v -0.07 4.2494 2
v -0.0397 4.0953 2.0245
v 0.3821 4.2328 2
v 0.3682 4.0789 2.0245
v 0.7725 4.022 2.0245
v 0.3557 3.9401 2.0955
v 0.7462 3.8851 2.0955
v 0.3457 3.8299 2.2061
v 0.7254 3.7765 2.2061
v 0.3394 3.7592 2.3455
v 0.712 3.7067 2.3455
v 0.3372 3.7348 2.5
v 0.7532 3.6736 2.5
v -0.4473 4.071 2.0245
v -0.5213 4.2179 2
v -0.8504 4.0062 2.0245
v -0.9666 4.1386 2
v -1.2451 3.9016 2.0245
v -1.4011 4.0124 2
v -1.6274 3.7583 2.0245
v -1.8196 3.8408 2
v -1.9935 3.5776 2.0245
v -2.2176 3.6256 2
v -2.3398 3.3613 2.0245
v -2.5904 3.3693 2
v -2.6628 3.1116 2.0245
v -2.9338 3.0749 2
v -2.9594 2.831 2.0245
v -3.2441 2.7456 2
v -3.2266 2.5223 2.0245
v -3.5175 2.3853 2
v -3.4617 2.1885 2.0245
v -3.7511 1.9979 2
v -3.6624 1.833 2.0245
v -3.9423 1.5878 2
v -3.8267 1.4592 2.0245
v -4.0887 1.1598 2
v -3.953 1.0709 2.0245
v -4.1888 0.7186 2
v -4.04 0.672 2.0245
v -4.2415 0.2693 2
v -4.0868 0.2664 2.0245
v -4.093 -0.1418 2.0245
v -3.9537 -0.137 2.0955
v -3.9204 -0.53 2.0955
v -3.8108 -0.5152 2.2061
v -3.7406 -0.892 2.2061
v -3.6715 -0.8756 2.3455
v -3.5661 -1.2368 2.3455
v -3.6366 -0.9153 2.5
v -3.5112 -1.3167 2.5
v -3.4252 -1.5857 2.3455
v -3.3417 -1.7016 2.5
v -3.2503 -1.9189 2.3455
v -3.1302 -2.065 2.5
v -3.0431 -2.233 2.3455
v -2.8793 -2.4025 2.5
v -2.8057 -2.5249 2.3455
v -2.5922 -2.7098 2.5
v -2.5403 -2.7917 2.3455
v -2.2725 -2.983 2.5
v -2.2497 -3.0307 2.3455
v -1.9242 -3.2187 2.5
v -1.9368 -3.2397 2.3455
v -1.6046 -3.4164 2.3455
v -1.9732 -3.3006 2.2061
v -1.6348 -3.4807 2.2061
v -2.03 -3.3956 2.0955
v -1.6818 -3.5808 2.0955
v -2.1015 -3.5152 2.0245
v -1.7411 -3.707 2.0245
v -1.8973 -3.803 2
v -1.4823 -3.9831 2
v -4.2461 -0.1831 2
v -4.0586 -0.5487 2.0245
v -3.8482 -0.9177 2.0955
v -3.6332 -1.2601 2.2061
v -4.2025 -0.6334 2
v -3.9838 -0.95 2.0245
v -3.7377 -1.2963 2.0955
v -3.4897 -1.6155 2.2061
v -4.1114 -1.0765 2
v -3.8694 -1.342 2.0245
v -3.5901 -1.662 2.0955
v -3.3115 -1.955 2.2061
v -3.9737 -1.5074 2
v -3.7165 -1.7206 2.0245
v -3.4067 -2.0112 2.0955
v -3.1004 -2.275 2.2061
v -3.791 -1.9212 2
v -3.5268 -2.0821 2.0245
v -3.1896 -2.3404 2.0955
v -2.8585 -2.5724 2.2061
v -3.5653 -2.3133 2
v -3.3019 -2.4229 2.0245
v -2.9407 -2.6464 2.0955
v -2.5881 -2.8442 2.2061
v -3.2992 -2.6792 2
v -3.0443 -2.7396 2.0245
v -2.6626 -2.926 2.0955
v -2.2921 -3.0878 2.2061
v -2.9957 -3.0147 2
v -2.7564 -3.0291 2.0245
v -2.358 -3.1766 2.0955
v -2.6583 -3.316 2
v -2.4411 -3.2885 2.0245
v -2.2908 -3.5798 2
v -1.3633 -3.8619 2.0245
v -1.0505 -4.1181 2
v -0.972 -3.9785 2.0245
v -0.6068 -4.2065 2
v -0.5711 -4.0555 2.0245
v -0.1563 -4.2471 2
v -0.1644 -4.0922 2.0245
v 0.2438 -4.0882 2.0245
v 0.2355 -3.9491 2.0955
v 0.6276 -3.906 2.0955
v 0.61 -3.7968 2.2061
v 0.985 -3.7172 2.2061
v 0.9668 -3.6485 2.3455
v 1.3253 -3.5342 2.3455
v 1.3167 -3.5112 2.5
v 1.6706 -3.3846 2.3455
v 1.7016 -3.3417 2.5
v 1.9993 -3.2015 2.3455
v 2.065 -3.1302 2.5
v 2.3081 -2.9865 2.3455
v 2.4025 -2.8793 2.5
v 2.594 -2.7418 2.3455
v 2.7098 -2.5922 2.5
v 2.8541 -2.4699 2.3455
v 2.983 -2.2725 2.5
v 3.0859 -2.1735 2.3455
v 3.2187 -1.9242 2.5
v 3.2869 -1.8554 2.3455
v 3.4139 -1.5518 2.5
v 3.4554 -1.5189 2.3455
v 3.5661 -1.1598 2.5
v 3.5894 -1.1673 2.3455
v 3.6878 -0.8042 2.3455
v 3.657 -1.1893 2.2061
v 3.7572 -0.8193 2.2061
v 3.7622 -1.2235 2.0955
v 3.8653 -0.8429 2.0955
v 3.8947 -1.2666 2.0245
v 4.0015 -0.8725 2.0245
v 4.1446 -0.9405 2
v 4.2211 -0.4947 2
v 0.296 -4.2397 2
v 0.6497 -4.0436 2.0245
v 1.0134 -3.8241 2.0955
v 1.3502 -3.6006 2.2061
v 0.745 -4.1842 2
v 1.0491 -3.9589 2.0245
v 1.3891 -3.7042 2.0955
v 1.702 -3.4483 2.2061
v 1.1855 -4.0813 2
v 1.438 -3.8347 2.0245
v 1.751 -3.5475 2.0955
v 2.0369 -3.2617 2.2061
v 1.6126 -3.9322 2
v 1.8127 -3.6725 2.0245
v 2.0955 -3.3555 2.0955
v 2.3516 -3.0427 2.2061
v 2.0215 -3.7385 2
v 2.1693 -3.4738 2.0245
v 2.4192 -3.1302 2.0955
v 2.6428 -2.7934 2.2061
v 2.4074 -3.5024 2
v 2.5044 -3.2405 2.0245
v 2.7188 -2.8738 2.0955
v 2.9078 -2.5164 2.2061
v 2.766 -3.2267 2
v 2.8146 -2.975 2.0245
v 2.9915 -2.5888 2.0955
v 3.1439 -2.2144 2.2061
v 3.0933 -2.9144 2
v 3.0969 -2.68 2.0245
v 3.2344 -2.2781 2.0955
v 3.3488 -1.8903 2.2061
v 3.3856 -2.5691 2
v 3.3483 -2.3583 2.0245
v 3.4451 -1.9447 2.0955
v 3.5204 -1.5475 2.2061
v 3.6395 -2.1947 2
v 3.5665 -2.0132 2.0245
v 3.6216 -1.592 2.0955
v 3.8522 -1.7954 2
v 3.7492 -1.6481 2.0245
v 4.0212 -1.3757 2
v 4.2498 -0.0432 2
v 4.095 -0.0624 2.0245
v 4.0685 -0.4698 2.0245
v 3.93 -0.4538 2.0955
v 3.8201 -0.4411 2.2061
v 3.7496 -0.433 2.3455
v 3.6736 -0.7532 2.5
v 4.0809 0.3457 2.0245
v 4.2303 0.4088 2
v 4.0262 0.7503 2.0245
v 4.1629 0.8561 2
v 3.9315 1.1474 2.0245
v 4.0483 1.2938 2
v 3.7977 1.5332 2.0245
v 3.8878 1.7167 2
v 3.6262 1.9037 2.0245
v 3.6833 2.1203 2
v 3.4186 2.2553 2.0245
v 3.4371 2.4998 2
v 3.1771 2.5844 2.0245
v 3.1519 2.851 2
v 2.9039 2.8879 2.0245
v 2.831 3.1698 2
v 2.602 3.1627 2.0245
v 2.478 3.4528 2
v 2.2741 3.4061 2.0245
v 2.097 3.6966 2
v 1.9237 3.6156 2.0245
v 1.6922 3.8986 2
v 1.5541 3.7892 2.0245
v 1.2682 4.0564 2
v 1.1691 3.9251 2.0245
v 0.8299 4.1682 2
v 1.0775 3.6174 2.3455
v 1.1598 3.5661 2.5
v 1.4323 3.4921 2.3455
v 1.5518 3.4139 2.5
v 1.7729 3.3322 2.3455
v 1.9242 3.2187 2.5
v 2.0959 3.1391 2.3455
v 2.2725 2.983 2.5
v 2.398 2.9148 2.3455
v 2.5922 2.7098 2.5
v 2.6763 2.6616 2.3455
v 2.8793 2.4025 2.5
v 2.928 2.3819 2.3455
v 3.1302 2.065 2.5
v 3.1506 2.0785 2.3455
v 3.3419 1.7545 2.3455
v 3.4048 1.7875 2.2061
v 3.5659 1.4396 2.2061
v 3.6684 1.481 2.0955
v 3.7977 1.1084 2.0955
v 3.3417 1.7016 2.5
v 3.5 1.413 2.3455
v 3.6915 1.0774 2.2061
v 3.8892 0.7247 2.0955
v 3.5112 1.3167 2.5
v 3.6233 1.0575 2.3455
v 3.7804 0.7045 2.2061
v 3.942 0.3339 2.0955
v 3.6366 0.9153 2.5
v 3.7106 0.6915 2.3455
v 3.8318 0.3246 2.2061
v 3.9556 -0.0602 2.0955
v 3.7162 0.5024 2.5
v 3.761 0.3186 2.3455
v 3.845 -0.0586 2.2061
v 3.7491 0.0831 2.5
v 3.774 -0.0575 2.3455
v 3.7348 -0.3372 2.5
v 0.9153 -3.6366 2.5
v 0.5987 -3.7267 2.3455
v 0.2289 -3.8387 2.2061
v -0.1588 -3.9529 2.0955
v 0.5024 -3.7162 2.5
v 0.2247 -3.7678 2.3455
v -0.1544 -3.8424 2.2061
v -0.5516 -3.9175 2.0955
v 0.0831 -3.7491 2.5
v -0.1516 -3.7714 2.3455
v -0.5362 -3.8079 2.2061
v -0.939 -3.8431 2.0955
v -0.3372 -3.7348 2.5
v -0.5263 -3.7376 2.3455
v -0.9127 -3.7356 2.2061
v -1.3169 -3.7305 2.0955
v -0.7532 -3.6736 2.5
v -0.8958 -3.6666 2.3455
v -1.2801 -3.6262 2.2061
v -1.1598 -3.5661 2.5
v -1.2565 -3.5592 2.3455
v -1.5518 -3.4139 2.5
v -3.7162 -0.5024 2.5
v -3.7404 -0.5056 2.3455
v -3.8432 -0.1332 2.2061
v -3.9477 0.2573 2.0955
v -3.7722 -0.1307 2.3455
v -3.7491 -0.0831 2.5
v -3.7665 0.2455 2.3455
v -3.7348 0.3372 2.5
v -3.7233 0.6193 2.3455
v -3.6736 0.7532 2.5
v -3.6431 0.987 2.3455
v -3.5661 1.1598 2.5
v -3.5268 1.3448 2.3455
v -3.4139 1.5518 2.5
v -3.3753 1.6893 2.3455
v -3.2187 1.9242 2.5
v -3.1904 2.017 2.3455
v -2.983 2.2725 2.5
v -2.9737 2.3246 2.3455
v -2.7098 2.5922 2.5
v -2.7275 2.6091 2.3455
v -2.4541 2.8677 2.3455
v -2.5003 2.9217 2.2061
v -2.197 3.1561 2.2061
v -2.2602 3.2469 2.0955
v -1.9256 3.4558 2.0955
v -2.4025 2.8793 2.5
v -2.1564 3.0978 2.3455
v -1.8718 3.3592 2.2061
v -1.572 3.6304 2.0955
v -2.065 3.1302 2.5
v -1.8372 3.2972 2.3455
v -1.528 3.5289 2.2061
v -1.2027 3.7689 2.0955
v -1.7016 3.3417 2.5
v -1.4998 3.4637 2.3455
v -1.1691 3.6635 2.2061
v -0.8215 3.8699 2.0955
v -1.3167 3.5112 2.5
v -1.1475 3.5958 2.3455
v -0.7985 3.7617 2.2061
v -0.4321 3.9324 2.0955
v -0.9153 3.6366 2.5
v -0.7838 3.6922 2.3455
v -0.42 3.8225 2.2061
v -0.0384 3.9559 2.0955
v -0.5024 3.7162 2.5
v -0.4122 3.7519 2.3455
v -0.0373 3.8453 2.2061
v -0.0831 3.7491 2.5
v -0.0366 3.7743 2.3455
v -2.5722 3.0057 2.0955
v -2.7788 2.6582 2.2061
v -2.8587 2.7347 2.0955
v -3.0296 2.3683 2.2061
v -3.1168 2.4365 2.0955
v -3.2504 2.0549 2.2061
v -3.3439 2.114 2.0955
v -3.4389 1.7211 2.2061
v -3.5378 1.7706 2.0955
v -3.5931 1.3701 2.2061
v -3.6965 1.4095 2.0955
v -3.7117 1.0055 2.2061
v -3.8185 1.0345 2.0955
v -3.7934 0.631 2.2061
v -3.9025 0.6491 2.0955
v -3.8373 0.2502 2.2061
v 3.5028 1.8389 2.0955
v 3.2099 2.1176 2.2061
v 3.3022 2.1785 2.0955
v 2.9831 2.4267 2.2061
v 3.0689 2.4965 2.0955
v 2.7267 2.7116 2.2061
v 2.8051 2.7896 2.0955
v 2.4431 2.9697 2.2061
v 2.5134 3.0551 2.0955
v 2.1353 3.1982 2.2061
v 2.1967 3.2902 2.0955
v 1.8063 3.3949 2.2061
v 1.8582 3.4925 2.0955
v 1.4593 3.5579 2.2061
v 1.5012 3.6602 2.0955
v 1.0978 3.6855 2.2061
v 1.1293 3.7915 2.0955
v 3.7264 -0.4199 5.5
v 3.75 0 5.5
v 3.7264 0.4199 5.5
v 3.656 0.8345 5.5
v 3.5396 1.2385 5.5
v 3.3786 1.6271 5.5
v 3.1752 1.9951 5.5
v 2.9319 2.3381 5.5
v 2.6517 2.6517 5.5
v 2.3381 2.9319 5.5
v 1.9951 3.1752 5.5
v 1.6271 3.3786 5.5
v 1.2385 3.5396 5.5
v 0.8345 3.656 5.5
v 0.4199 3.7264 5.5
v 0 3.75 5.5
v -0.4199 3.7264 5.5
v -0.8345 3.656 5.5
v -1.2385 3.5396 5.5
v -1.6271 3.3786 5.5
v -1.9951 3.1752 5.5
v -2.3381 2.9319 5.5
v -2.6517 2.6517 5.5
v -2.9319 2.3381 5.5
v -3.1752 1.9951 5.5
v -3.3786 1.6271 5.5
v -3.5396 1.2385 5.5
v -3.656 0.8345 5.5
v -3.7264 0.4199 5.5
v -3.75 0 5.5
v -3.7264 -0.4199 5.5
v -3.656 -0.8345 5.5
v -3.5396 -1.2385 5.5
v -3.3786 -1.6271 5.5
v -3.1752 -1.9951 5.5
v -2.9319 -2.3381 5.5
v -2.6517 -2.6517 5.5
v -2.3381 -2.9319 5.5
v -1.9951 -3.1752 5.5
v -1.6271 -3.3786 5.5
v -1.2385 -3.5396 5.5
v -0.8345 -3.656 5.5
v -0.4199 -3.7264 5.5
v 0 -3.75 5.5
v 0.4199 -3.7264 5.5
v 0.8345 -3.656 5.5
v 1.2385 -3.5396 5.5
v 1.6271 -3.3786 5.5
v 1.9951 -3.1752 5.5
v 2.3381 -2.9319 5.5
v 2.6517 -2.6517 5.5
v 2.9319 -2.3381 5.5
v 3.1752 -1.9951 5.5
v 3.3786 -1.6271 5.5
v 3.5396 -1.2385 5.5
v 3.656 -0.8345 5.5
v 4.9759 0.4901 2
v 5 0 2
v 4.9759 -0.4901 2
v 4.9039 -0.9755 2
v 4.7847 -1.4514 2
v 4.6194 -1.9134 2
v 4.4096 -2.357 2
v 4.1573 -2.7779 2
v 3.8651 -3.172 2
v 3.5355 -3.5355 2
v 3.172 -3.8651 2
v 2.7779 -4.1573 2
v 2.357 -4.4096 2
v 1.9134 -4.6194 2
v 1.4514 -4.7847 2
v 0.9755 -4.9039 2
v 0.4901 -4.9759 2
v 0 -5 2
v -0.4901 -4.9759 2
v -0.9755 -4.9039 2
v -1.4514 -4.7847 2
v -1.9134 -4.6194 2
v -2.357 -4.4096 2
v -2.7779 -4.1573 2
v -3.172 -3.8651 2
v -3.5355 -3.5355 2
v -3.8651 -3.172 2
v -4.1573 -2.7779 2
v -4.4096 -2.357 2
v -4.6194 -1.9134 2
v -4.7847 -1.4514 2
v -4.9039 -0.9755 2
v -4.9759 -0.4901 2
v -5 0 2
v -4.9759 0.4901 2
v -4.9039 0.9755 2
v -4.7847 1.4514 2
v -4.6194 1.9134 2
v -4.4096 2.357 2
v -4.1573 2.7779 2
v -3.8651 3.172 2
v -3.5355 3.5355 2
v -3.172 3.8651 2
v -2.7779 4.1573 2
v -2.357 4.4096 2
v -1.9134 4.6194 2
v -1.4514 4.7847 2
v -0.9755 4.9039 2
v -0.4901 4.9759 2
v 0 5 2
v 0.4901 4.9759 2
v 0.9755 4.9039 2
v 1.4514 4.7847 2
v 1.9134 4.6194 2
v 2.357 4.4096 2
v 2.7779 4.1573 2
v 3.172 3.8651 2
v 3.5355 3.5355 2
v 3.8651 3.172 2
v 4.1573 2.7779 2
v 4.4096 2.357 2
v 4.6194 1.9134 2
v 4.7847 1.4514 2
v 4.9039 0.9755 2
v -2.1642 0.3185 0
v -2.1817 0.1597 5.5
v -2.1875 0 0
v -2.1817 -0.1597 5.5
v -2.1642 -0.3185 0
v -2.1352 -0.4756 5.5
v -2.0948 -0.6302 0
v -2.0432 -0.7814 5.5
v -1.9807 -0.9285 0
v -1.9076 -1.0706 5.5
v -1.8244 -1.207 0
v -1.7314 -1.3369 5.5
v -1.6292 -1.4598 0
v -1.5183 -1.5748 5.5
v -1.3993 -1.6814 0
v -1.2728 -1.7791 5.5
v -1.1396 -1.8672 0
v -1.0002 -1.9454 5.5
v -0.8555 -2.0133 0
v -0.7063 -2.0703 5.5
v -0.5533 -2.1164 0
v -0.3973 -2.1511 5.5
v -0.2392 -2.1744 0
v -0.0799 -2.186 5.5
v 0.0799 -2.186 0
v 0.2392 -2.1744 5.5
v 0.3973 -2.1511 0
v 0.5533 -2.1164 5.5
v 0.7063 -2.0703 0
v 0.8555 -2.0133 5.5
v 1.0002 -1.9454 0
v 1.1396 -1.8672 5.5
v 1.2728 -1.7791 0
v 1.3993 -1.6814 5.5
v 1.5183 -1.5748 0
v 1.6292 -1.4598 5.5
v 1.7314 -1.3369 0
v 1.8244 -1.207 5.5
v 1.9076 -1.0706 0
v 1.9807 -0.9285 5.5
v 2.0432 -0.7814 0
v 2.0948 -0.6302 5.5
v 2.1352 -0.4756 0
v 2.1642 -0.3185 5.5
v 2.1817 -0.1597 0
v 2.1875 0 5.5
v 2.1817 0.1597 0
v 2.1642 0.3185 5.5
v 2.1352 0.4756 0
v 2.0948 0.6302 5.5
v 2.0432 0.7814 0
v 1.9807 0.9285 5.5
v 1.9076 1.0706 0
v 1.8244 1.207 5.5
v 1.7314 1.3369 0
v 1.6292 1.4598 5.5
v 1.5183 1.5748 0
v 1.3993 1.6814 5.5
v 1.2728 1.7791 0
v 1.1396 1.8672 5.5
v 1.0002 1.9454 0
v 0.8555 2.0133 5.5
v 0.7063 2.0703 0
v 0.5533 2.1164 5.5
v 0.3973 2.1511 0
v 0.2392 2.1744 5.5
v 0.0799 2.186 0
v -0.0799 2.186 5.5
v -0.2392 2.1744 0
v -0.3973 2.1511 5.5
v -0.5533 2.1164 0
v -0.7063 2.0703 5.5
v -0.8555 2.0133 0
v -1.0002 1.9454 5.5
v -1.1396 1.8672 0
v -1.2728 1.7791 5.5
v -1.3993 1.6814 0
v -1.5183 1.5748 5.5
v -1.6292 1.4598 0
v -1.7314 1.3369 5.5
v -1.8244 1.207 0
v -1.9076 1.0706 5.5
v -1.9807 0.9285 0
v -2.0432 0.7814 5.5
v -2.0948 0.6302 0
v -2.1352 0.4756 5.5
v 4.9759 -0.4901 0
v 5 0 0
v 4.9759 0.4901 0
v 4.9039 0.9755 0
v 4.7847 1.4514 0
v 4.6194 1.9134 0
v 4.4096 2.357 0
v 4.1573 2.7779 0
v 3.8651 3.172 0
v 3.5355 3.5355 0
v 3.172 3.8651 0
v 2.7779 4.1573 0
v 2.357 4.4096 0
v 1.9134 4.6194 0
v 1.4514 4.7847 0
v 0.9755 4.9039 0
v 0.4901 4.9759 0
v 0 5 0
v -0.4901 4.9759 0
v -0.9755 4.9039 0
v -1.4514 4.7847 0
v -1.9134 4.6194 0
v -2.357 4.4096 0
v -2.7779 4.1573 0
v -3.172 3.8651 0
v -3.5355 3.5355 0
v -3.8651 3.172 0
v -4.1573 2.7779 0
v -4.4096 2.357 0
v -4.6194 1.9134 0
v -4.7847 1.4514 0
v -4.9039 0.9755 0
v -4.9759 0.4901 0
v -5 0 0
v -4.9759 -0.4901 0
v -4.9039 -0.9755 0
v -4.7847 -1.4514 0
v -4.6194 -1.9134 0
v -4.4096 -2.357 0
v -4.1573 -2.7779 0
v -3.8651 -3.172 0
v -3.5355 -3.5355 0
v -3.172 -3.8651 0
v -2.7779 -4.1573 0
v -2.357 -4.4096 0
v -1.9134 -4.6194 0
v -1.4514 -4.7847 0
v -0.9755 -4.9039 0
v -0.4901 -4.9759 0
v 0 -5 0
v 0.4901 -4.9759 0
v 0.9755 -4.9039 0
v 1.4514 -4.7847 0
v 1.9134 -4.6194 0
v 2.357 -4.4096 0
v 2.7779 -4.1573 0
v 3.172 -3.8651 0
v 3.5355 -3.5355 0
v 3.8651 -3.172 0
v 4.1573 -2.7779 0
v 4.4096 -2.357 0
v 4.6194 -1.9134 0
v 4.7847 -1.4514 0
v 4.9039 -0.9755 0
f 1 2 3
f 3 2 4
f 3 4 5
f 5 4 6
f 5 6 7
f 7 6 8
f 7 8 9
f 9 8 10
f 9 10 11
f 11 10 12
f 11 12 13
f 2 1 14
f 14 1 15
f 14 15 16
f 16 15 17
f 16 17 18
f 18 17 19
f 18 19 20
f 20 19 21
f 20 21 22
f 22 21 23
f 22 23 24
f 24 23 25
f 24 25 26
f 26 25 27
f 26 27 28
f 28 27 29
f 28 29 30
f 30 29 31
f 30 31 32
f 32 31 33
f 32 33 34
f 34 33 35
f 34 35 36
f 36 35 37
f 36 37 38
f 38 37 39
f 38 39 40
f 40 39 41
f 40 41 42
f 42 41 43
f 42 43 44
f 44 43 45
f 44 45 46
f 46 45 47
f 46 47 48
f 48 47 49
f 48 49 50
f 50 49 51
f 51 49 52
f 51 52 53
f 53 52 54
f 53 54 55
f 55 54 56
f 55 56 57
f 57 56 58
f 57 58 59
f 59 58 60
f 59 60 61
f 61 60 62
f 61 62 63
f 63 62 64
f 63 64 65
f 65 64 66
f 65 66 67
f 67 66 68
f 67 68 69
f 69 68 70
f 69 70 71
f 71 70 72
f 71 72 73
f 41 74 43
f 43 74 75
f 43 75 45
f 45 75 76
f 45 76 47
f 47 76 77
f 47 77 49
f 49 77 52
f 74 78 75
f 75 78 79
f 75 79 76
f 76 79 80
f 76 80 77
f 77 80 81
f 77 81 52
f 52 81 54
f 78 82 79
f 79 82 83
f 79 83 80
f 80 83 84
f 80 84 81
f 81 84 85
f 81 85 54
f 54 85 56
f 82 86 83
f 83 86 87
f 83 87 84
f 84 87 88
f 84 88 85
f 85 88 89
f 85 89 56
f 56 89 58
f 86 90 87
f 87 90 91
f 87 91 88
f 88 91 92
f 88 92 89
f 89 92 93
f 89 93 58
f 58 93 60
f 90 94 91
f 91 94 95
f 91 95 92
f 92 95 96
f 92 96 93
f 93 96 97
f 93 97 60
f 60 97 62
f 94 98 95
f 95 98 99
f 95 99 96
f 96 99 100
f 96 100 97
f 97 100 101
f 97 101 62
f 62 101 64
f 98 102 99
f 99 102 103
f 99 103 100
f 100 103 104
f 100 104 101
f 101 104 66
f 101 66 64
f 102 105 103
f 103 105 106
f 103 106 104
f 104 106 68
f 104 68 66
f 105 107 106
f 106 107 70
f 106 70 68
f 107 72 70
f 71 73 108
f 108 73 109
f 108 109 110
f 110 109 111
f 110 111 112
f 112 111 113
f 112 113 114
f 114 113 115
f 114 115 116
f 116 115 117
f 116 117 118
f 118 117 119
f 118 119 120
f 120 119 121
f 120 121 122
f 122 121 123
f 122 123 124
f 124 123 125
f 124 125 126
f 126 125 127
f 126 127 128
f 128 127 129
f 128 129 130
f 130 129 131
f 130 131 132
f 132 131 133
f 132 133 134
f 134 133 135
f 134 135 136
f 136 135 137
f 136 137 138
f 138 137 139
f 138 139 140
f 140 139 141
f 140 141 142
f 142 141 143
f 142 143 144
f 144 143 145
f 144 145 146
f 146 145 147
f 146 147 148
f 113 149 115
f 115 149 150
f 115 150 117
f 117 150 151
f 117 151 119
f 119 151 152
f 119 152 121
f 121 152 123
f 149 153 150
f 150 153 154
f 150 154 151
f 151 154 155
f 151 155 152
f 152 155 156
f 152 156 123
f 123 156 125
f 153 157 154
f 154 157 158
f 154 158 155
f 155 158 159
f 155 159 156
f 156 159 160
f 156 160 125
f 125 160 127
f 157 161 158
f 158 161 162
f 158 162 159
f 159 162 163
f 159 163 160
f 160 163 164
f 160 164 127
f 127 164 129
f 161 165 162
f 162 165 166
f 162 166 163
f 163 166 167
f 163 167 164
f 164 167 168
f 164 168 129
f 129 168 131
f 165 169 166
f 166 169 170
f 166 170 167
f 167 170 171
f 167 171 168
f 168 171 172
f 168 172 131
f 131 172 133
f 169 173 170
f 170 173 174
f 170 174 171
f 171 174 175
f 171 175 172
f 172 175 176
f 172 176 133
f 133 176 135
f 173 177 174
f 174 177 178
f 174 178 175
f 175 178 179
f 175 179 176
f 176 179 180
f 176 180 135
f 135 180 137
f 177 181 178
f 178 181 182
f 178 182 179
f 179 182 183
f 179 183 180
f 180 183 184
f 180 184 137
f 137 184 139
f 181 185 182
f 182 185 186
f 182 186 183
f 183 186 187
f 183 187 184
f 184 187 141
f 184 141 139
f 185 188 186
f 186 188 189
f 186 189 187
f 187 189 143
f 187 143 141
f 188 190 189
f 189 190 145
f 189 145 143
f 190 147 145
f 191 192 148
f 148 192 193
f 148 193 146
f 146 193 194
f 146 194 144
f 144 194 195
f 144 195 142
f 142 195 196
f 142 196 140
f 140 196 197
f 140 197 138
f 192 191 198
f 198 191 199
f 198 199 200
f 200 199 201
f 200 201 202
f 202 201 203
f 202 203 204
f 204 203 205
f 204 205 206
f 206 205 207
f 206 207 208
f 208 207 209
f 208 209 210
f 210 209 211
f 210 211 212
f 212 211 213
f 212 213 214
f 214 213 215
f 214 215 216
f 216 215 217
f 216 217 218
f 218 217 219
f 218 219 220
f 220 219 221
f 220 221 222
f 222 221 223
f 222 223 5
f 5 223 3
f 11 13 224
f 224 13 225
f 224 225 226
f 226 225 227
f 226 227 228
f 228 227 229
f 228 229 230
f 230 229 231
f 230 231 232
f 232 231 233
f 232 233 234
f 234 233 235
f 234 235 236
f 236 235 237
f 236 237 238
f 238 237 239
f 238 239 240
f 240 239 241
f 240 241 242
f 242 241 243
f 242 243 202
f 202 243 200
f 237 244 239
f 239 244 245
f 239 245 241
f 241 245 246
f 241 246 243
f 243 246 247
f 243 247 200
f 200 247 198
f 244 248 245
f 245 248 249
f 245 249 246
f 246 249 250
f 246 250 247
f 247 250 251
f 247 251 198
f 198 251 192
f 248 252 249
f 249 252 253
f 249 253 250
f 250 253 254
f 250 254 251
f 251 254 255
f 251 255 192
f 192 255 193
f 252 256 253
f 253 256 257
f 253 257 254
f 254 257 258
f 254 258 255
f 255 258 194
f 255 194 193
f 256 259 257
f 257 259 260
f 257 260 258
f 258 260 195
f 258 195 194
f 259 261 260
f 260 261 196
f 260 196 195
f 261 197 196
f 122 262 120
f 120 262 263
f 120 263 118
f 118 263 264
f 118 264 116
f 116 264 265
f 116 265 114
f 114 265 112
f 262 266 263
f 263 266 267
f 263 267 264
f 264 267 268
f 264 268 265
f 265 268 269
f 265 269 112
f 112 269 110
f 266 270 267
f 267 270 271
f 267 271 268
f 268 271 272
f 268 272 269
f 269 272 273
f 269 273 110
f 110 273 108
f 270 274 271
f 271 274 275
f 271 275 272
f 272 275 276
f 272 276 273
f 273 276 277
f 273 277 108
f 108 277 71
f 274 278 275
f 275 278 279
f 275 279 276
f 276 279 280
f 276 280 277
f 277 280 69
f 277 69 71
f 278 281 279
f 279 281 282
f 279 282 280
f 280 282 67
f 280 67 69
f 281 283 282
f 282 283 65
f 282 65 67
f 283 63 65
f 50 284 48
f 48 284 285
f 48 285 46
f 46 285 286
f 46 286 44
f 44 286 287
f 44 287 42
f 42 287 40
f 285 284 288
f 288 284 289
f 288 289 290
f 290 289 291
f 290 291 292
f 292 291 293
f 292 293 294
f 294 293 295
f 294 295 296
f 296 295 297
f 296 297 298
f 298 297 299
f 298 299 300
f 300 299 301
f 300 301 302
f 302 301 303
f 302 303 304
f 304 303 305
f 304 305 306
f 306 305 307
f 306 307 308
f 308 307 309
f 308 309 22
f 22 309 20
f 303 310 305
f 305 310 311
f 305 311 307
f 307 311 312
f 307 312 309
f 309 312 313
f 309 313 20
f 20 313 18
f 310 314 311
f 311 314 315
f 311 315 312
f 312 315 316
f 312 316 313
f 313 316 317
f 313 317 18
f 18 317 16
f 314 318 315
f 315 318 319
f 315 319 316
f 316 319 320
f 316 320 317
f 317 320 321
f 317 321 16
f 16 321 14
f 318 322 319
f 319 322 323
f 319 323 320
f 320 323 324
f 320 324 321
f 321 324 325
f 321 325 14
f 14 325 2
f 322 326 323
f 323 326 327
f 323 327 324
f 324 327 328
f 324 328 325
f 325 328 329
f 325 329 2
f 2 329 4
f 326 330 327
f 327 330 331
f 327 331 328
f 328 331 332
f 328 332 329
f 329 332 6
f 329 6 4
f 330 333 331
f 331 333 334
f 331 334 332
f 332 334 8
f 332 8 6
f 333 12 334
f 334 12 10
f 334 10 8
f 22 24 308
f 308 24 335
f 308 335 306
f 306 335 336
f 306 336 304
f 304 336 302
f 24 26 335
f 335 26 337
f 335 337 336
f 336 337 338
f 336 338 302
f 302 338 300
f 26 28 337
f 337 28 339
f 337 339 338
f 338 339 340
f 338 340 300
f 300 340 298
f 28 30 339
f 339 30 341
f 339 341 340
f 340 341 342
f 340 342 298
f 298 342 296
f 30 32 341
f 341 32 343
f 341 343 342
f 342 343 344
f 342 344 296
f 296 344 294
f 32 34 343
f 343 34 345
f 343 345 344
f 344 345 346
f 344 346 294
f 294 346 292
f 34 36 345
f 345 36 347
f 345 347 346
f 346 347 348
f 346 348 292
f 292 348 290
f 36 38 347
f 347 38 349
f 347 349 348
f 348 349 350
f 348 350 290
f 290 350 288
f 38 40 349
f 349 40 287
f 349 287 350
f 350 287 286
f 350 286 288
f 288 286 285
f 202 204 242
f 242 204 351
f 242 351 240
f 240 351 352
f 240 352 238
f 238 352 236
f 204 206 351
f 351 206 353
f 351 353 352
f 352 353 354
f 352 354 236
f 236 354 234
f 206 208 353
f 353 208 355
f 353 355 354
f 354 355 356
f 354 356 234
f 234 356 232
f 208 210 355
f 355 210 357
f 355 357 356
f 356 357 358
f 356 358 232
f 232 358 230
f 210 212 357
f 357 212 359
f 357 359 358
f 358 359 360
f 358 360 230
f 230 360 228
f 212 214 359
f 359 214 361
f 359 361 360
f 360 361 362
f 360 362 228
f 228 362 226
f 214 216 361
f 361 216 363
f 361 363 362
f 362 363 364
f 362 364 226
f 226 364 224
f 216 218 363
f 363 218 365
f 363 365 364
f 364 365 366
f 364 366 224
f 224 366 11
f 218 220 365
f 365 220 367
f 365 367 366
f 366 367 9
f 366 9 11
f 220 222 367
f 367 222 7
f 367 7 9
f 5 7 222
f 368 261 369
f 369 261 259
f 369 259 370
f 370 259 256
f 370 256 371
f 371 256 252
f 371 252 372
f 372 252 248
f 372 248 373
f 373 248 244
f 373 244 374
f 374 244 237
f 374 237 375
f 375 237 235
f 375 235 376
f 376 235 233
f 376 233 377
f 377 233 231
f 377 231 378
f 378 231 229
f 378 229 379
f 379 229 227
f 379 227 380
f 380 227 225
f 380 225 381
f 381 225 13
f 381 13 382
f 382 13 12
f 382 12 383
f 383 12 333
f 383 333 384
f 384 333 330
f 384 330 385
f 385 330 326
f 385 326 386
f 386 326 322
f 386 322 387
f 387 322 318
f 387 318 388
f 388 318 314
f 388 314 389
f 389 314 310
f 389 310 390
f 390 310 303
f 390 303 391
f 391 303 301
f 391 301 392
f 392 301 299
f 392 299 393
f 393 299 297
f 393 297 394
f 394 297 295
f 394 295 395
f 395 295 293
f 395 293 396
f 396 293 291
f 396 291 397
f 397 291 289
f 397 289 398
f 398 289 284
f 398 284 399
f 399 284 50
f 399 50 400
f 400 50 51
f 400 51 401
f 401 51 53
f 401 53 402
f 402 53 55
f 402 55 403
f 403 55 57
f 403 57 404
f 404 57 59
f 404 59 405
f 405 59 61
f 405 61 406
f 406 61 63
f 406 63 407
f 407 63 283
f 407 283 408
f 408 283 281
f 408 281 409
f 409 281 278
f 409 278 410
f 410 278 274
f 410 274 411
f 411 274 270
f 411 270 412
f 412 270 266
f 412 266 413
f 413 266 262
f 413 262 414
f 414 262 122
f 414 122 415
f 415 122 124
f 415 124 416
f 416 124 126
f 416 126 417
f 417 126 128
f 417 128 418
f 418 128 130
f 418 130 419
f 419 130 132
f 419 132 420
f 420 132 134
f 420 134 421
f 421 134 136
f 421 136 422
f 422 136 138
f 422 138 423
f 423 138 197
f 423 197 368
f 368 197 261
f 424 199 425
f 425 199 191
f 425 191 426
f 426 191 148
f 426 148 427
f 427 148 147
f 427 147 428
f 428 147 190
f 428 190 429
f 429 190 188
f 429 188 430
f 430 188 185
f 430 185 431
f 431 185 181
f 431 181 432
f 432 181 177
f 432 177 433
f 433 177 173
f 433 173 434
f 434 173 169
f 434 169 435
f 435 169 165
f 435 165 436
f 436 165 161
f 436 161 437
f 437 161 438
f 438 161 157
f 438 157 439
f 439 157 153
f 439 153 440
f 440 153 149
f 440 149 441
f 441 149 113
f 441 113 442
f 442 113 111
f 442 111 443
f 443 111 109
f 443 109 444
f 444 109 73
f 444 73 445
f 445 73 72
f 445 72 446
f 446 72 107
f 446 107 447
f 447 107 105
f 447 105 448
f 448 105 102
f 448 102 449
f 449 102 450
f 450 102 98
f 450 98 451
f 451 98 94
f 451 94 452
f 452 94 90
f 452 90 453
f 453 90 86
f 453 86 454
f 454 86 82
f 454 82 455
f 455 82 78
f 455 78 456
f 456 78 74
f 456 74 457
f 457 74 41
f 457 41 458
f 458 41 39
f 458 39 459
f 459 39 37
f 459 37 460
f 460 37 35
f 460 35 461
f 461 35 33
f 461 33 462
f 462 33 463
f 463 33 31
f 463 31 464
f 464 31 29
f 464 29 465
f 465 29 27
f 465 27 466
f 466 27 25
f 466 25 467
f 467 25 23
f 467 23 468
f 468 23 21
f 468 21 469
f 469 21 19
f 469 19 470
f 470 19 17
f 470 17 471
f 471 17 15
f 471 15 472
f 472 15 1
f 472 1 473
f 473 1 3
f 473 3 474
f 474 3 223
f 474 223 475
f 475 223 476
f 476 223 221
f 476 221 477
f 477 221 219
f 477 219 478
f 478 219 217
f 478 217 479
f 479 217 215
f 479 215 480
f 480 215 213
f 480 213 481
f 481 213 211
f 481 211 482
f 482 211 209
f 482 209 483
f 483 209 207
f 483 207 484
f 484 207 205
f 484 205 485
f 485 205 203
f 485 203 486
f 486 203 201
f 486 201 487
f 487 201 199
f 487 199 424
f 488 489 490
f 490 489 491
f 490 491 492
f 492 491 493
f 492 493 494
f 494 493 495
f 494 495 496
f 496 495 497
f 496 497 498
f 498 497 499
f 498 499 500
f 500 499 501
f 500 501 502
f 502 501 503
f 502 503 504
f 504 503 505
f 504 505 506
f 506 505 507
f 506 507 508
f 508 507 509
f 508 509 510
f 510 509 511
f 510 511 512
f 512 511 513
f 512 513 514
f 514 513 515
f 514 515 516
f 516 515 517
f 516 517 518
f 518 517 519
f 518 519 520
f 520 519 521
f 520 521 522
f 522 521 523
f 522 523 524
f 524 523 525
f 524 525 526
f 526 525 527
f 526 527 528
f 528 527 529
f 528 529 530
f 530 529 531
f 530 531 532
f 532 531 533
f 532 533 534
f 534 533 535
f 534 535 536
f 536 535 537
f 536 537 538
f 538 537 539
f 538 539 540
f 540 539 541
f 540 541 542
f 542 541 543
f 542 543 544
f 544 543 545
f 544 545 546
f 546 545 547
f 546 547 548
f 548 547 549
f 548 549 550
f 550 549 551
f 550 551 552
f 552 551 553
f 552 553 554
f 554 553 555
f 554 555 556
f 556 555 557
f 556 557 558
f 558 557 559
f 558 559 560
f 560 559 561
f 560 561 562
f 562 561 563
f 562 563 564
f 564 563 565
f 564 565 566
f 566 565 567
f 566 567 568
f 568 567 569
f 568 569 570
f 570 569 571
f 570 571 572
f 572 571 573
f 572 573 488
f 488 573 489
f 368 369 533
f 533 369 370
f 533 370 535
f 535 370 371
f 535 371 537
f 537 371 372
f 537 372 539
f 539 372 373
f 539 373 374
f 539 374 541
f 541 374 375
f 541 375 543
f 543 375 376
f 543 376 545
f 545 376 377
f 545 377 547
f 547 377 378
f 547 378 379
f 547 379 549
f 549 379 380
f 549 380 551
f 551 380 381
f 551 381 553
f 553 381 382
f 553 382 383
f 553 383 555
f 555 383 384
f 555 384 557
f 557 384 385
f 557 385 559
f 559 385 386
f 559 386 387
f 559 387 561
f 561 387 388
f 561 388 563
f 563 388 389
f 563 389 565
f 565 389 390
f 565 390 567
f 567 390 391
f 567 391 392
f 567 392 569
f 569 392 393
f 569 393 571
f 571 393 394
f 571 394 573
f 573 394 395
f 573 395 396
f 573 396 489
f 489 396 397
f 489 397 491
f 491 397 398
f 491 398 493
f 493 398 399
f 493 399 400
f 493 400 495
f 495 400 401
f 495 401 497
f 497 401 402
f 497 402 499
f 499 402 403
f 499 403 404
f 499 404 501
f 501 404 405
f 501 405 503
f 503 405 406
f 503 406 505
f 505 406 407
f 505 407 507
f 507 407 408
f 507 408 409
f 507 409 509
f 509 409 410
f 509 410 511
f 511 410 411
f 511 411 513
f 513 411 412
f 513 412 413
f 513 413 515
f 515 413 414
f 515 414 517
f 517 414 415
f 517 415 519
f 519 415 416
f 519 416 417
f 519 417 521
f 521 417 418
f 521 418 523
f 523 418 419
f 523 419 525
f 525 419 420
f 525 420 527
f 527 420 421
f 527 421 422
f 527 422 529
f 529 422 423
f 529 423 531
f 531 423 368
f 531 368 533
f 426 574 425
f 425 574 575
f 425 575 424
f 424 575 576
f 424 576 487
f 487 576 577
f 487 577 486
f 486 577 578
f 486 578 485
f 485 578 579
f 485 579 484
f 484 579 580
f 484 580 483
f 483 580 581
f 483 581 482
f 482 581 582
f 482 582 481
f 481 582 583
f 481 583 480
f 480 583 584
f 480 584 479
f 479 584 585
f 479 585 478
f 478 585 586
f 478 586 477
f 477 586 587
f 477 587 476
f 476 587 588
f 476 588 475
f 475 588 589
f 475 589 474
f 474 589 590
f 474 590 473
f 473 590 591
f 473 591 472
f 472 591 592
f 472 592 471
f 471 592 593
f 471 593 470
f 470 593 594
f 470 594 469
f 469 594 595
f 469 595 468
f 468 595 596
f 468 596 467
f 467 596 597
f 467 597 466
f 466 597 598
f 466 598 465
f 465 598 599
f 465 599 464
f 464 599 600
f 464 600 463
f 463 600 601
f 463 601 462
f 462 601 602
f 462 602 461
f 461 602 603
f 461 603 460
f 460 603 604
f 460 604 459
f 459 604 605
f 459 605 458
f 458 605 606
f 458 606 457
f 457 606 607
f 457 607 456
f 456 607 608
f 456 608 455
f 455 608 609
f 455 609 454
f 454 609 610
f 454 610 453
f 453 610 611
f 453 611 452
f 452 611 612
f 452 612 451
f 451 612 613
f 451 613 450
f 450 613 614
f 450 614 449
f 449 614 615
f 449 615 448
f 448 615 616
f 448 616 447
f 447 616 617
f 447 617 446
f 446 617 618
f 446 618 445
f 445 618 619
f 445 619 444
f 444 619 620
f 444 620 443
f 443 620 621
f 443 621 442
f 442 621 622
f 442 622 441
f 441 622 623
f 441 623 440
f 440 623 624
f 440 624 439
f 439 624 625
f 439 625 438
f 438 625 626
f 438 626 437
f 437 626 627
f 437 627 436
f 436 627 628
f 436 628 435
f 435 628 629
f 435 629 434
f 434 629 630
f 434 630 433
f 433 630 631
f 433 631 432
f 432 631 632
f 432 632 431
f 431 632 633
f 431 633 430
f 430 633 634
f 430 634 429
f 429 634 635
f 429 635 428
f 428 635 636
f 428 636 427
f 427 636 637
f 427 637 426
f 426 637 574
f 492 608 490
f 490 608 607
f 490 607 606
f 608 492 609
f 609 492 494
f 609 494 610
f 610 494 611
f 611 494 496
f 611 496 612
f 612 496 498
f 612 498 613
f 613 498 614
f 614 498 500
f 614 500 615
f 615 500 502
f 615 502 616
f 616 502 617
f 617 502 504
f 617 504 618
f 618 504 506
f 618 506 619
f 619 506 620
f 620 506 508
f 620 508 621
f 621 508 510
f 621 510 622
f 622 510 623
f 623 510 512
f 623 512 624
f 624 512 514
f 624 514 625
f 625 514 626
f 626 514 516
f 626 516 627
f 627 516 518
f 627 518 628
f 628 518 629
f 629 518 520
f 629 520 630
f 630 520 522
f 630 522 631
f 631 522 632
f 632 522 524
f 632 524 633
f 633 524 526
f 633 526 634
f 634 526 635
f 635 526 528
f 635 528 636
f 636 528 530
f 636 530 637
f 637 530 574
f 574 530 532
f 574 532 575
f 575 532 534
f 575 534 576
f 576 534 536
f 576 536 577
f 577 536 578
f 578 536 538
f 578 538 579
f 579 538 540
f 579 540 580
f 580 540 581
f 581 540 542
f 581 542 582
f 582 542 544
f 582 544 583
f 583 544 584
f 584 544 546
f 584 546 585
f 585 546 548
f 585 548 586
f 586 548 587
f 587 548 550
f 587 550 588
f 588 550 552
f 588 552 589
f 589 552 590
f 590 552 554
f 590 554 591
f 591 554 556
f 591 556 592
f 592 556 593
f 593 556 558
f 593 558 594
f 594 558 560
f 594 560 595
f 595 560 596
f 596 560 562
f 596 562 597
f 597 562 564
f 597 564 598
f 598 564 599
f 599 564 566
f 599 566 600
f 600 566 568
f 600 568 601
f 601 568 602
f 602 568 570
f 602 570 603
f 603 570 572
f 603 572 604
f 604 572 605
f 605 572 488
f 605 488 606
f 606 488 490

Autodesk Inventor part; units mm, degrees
ref_plane "YZ Plane" through (0, 0, 0) normal (1, 0, 0) x (0, 1, 0)
ref_plane "XZ Plane" through (0, 0, 0) normal (0, 1, 0) x (-1, 0, 0)
ref_plane "XY Plane" through (0, 0, 0) normal (0, 0, 1) x (1, 0, 0)
sketch "Sketch1" plane through (0, 0, 0) normal (0, 0, 1) x (1, 0, 0)
  circle A0 centre (0, 0) radius 5
  dimension "d0" = 10
extrude "Extrusion1" add sketch "Sketch1" along normal blind 2
sketch "Sketch2" plane through (0, 0, 2) normal (0, 0, 1) x (1, 0, 0)
  circle A0 centre (0, 0) radius 3.75
  circle A1 centre (0, 0) radius 2.1875
  dimension "d3" = 7.5
  dimension "d4" = 4.375
extrude "Extrusion2" add sketch "Sketch2" along normal blind 3.5
sketch "Sketch3" plane through (0, 0, 0) normal (0, 0, -1) x (-1, 0, 0)
  circle A0 centre (0, 0) radius 2.1875 projected
extrude "Extrusion3" cut sketch "Sketch3" against normal blind 2.5
fillet "Face Fillet1" radius 0.5 1 edges at (-3.75, 0, 2)
properties part number "hombrocojinete"
